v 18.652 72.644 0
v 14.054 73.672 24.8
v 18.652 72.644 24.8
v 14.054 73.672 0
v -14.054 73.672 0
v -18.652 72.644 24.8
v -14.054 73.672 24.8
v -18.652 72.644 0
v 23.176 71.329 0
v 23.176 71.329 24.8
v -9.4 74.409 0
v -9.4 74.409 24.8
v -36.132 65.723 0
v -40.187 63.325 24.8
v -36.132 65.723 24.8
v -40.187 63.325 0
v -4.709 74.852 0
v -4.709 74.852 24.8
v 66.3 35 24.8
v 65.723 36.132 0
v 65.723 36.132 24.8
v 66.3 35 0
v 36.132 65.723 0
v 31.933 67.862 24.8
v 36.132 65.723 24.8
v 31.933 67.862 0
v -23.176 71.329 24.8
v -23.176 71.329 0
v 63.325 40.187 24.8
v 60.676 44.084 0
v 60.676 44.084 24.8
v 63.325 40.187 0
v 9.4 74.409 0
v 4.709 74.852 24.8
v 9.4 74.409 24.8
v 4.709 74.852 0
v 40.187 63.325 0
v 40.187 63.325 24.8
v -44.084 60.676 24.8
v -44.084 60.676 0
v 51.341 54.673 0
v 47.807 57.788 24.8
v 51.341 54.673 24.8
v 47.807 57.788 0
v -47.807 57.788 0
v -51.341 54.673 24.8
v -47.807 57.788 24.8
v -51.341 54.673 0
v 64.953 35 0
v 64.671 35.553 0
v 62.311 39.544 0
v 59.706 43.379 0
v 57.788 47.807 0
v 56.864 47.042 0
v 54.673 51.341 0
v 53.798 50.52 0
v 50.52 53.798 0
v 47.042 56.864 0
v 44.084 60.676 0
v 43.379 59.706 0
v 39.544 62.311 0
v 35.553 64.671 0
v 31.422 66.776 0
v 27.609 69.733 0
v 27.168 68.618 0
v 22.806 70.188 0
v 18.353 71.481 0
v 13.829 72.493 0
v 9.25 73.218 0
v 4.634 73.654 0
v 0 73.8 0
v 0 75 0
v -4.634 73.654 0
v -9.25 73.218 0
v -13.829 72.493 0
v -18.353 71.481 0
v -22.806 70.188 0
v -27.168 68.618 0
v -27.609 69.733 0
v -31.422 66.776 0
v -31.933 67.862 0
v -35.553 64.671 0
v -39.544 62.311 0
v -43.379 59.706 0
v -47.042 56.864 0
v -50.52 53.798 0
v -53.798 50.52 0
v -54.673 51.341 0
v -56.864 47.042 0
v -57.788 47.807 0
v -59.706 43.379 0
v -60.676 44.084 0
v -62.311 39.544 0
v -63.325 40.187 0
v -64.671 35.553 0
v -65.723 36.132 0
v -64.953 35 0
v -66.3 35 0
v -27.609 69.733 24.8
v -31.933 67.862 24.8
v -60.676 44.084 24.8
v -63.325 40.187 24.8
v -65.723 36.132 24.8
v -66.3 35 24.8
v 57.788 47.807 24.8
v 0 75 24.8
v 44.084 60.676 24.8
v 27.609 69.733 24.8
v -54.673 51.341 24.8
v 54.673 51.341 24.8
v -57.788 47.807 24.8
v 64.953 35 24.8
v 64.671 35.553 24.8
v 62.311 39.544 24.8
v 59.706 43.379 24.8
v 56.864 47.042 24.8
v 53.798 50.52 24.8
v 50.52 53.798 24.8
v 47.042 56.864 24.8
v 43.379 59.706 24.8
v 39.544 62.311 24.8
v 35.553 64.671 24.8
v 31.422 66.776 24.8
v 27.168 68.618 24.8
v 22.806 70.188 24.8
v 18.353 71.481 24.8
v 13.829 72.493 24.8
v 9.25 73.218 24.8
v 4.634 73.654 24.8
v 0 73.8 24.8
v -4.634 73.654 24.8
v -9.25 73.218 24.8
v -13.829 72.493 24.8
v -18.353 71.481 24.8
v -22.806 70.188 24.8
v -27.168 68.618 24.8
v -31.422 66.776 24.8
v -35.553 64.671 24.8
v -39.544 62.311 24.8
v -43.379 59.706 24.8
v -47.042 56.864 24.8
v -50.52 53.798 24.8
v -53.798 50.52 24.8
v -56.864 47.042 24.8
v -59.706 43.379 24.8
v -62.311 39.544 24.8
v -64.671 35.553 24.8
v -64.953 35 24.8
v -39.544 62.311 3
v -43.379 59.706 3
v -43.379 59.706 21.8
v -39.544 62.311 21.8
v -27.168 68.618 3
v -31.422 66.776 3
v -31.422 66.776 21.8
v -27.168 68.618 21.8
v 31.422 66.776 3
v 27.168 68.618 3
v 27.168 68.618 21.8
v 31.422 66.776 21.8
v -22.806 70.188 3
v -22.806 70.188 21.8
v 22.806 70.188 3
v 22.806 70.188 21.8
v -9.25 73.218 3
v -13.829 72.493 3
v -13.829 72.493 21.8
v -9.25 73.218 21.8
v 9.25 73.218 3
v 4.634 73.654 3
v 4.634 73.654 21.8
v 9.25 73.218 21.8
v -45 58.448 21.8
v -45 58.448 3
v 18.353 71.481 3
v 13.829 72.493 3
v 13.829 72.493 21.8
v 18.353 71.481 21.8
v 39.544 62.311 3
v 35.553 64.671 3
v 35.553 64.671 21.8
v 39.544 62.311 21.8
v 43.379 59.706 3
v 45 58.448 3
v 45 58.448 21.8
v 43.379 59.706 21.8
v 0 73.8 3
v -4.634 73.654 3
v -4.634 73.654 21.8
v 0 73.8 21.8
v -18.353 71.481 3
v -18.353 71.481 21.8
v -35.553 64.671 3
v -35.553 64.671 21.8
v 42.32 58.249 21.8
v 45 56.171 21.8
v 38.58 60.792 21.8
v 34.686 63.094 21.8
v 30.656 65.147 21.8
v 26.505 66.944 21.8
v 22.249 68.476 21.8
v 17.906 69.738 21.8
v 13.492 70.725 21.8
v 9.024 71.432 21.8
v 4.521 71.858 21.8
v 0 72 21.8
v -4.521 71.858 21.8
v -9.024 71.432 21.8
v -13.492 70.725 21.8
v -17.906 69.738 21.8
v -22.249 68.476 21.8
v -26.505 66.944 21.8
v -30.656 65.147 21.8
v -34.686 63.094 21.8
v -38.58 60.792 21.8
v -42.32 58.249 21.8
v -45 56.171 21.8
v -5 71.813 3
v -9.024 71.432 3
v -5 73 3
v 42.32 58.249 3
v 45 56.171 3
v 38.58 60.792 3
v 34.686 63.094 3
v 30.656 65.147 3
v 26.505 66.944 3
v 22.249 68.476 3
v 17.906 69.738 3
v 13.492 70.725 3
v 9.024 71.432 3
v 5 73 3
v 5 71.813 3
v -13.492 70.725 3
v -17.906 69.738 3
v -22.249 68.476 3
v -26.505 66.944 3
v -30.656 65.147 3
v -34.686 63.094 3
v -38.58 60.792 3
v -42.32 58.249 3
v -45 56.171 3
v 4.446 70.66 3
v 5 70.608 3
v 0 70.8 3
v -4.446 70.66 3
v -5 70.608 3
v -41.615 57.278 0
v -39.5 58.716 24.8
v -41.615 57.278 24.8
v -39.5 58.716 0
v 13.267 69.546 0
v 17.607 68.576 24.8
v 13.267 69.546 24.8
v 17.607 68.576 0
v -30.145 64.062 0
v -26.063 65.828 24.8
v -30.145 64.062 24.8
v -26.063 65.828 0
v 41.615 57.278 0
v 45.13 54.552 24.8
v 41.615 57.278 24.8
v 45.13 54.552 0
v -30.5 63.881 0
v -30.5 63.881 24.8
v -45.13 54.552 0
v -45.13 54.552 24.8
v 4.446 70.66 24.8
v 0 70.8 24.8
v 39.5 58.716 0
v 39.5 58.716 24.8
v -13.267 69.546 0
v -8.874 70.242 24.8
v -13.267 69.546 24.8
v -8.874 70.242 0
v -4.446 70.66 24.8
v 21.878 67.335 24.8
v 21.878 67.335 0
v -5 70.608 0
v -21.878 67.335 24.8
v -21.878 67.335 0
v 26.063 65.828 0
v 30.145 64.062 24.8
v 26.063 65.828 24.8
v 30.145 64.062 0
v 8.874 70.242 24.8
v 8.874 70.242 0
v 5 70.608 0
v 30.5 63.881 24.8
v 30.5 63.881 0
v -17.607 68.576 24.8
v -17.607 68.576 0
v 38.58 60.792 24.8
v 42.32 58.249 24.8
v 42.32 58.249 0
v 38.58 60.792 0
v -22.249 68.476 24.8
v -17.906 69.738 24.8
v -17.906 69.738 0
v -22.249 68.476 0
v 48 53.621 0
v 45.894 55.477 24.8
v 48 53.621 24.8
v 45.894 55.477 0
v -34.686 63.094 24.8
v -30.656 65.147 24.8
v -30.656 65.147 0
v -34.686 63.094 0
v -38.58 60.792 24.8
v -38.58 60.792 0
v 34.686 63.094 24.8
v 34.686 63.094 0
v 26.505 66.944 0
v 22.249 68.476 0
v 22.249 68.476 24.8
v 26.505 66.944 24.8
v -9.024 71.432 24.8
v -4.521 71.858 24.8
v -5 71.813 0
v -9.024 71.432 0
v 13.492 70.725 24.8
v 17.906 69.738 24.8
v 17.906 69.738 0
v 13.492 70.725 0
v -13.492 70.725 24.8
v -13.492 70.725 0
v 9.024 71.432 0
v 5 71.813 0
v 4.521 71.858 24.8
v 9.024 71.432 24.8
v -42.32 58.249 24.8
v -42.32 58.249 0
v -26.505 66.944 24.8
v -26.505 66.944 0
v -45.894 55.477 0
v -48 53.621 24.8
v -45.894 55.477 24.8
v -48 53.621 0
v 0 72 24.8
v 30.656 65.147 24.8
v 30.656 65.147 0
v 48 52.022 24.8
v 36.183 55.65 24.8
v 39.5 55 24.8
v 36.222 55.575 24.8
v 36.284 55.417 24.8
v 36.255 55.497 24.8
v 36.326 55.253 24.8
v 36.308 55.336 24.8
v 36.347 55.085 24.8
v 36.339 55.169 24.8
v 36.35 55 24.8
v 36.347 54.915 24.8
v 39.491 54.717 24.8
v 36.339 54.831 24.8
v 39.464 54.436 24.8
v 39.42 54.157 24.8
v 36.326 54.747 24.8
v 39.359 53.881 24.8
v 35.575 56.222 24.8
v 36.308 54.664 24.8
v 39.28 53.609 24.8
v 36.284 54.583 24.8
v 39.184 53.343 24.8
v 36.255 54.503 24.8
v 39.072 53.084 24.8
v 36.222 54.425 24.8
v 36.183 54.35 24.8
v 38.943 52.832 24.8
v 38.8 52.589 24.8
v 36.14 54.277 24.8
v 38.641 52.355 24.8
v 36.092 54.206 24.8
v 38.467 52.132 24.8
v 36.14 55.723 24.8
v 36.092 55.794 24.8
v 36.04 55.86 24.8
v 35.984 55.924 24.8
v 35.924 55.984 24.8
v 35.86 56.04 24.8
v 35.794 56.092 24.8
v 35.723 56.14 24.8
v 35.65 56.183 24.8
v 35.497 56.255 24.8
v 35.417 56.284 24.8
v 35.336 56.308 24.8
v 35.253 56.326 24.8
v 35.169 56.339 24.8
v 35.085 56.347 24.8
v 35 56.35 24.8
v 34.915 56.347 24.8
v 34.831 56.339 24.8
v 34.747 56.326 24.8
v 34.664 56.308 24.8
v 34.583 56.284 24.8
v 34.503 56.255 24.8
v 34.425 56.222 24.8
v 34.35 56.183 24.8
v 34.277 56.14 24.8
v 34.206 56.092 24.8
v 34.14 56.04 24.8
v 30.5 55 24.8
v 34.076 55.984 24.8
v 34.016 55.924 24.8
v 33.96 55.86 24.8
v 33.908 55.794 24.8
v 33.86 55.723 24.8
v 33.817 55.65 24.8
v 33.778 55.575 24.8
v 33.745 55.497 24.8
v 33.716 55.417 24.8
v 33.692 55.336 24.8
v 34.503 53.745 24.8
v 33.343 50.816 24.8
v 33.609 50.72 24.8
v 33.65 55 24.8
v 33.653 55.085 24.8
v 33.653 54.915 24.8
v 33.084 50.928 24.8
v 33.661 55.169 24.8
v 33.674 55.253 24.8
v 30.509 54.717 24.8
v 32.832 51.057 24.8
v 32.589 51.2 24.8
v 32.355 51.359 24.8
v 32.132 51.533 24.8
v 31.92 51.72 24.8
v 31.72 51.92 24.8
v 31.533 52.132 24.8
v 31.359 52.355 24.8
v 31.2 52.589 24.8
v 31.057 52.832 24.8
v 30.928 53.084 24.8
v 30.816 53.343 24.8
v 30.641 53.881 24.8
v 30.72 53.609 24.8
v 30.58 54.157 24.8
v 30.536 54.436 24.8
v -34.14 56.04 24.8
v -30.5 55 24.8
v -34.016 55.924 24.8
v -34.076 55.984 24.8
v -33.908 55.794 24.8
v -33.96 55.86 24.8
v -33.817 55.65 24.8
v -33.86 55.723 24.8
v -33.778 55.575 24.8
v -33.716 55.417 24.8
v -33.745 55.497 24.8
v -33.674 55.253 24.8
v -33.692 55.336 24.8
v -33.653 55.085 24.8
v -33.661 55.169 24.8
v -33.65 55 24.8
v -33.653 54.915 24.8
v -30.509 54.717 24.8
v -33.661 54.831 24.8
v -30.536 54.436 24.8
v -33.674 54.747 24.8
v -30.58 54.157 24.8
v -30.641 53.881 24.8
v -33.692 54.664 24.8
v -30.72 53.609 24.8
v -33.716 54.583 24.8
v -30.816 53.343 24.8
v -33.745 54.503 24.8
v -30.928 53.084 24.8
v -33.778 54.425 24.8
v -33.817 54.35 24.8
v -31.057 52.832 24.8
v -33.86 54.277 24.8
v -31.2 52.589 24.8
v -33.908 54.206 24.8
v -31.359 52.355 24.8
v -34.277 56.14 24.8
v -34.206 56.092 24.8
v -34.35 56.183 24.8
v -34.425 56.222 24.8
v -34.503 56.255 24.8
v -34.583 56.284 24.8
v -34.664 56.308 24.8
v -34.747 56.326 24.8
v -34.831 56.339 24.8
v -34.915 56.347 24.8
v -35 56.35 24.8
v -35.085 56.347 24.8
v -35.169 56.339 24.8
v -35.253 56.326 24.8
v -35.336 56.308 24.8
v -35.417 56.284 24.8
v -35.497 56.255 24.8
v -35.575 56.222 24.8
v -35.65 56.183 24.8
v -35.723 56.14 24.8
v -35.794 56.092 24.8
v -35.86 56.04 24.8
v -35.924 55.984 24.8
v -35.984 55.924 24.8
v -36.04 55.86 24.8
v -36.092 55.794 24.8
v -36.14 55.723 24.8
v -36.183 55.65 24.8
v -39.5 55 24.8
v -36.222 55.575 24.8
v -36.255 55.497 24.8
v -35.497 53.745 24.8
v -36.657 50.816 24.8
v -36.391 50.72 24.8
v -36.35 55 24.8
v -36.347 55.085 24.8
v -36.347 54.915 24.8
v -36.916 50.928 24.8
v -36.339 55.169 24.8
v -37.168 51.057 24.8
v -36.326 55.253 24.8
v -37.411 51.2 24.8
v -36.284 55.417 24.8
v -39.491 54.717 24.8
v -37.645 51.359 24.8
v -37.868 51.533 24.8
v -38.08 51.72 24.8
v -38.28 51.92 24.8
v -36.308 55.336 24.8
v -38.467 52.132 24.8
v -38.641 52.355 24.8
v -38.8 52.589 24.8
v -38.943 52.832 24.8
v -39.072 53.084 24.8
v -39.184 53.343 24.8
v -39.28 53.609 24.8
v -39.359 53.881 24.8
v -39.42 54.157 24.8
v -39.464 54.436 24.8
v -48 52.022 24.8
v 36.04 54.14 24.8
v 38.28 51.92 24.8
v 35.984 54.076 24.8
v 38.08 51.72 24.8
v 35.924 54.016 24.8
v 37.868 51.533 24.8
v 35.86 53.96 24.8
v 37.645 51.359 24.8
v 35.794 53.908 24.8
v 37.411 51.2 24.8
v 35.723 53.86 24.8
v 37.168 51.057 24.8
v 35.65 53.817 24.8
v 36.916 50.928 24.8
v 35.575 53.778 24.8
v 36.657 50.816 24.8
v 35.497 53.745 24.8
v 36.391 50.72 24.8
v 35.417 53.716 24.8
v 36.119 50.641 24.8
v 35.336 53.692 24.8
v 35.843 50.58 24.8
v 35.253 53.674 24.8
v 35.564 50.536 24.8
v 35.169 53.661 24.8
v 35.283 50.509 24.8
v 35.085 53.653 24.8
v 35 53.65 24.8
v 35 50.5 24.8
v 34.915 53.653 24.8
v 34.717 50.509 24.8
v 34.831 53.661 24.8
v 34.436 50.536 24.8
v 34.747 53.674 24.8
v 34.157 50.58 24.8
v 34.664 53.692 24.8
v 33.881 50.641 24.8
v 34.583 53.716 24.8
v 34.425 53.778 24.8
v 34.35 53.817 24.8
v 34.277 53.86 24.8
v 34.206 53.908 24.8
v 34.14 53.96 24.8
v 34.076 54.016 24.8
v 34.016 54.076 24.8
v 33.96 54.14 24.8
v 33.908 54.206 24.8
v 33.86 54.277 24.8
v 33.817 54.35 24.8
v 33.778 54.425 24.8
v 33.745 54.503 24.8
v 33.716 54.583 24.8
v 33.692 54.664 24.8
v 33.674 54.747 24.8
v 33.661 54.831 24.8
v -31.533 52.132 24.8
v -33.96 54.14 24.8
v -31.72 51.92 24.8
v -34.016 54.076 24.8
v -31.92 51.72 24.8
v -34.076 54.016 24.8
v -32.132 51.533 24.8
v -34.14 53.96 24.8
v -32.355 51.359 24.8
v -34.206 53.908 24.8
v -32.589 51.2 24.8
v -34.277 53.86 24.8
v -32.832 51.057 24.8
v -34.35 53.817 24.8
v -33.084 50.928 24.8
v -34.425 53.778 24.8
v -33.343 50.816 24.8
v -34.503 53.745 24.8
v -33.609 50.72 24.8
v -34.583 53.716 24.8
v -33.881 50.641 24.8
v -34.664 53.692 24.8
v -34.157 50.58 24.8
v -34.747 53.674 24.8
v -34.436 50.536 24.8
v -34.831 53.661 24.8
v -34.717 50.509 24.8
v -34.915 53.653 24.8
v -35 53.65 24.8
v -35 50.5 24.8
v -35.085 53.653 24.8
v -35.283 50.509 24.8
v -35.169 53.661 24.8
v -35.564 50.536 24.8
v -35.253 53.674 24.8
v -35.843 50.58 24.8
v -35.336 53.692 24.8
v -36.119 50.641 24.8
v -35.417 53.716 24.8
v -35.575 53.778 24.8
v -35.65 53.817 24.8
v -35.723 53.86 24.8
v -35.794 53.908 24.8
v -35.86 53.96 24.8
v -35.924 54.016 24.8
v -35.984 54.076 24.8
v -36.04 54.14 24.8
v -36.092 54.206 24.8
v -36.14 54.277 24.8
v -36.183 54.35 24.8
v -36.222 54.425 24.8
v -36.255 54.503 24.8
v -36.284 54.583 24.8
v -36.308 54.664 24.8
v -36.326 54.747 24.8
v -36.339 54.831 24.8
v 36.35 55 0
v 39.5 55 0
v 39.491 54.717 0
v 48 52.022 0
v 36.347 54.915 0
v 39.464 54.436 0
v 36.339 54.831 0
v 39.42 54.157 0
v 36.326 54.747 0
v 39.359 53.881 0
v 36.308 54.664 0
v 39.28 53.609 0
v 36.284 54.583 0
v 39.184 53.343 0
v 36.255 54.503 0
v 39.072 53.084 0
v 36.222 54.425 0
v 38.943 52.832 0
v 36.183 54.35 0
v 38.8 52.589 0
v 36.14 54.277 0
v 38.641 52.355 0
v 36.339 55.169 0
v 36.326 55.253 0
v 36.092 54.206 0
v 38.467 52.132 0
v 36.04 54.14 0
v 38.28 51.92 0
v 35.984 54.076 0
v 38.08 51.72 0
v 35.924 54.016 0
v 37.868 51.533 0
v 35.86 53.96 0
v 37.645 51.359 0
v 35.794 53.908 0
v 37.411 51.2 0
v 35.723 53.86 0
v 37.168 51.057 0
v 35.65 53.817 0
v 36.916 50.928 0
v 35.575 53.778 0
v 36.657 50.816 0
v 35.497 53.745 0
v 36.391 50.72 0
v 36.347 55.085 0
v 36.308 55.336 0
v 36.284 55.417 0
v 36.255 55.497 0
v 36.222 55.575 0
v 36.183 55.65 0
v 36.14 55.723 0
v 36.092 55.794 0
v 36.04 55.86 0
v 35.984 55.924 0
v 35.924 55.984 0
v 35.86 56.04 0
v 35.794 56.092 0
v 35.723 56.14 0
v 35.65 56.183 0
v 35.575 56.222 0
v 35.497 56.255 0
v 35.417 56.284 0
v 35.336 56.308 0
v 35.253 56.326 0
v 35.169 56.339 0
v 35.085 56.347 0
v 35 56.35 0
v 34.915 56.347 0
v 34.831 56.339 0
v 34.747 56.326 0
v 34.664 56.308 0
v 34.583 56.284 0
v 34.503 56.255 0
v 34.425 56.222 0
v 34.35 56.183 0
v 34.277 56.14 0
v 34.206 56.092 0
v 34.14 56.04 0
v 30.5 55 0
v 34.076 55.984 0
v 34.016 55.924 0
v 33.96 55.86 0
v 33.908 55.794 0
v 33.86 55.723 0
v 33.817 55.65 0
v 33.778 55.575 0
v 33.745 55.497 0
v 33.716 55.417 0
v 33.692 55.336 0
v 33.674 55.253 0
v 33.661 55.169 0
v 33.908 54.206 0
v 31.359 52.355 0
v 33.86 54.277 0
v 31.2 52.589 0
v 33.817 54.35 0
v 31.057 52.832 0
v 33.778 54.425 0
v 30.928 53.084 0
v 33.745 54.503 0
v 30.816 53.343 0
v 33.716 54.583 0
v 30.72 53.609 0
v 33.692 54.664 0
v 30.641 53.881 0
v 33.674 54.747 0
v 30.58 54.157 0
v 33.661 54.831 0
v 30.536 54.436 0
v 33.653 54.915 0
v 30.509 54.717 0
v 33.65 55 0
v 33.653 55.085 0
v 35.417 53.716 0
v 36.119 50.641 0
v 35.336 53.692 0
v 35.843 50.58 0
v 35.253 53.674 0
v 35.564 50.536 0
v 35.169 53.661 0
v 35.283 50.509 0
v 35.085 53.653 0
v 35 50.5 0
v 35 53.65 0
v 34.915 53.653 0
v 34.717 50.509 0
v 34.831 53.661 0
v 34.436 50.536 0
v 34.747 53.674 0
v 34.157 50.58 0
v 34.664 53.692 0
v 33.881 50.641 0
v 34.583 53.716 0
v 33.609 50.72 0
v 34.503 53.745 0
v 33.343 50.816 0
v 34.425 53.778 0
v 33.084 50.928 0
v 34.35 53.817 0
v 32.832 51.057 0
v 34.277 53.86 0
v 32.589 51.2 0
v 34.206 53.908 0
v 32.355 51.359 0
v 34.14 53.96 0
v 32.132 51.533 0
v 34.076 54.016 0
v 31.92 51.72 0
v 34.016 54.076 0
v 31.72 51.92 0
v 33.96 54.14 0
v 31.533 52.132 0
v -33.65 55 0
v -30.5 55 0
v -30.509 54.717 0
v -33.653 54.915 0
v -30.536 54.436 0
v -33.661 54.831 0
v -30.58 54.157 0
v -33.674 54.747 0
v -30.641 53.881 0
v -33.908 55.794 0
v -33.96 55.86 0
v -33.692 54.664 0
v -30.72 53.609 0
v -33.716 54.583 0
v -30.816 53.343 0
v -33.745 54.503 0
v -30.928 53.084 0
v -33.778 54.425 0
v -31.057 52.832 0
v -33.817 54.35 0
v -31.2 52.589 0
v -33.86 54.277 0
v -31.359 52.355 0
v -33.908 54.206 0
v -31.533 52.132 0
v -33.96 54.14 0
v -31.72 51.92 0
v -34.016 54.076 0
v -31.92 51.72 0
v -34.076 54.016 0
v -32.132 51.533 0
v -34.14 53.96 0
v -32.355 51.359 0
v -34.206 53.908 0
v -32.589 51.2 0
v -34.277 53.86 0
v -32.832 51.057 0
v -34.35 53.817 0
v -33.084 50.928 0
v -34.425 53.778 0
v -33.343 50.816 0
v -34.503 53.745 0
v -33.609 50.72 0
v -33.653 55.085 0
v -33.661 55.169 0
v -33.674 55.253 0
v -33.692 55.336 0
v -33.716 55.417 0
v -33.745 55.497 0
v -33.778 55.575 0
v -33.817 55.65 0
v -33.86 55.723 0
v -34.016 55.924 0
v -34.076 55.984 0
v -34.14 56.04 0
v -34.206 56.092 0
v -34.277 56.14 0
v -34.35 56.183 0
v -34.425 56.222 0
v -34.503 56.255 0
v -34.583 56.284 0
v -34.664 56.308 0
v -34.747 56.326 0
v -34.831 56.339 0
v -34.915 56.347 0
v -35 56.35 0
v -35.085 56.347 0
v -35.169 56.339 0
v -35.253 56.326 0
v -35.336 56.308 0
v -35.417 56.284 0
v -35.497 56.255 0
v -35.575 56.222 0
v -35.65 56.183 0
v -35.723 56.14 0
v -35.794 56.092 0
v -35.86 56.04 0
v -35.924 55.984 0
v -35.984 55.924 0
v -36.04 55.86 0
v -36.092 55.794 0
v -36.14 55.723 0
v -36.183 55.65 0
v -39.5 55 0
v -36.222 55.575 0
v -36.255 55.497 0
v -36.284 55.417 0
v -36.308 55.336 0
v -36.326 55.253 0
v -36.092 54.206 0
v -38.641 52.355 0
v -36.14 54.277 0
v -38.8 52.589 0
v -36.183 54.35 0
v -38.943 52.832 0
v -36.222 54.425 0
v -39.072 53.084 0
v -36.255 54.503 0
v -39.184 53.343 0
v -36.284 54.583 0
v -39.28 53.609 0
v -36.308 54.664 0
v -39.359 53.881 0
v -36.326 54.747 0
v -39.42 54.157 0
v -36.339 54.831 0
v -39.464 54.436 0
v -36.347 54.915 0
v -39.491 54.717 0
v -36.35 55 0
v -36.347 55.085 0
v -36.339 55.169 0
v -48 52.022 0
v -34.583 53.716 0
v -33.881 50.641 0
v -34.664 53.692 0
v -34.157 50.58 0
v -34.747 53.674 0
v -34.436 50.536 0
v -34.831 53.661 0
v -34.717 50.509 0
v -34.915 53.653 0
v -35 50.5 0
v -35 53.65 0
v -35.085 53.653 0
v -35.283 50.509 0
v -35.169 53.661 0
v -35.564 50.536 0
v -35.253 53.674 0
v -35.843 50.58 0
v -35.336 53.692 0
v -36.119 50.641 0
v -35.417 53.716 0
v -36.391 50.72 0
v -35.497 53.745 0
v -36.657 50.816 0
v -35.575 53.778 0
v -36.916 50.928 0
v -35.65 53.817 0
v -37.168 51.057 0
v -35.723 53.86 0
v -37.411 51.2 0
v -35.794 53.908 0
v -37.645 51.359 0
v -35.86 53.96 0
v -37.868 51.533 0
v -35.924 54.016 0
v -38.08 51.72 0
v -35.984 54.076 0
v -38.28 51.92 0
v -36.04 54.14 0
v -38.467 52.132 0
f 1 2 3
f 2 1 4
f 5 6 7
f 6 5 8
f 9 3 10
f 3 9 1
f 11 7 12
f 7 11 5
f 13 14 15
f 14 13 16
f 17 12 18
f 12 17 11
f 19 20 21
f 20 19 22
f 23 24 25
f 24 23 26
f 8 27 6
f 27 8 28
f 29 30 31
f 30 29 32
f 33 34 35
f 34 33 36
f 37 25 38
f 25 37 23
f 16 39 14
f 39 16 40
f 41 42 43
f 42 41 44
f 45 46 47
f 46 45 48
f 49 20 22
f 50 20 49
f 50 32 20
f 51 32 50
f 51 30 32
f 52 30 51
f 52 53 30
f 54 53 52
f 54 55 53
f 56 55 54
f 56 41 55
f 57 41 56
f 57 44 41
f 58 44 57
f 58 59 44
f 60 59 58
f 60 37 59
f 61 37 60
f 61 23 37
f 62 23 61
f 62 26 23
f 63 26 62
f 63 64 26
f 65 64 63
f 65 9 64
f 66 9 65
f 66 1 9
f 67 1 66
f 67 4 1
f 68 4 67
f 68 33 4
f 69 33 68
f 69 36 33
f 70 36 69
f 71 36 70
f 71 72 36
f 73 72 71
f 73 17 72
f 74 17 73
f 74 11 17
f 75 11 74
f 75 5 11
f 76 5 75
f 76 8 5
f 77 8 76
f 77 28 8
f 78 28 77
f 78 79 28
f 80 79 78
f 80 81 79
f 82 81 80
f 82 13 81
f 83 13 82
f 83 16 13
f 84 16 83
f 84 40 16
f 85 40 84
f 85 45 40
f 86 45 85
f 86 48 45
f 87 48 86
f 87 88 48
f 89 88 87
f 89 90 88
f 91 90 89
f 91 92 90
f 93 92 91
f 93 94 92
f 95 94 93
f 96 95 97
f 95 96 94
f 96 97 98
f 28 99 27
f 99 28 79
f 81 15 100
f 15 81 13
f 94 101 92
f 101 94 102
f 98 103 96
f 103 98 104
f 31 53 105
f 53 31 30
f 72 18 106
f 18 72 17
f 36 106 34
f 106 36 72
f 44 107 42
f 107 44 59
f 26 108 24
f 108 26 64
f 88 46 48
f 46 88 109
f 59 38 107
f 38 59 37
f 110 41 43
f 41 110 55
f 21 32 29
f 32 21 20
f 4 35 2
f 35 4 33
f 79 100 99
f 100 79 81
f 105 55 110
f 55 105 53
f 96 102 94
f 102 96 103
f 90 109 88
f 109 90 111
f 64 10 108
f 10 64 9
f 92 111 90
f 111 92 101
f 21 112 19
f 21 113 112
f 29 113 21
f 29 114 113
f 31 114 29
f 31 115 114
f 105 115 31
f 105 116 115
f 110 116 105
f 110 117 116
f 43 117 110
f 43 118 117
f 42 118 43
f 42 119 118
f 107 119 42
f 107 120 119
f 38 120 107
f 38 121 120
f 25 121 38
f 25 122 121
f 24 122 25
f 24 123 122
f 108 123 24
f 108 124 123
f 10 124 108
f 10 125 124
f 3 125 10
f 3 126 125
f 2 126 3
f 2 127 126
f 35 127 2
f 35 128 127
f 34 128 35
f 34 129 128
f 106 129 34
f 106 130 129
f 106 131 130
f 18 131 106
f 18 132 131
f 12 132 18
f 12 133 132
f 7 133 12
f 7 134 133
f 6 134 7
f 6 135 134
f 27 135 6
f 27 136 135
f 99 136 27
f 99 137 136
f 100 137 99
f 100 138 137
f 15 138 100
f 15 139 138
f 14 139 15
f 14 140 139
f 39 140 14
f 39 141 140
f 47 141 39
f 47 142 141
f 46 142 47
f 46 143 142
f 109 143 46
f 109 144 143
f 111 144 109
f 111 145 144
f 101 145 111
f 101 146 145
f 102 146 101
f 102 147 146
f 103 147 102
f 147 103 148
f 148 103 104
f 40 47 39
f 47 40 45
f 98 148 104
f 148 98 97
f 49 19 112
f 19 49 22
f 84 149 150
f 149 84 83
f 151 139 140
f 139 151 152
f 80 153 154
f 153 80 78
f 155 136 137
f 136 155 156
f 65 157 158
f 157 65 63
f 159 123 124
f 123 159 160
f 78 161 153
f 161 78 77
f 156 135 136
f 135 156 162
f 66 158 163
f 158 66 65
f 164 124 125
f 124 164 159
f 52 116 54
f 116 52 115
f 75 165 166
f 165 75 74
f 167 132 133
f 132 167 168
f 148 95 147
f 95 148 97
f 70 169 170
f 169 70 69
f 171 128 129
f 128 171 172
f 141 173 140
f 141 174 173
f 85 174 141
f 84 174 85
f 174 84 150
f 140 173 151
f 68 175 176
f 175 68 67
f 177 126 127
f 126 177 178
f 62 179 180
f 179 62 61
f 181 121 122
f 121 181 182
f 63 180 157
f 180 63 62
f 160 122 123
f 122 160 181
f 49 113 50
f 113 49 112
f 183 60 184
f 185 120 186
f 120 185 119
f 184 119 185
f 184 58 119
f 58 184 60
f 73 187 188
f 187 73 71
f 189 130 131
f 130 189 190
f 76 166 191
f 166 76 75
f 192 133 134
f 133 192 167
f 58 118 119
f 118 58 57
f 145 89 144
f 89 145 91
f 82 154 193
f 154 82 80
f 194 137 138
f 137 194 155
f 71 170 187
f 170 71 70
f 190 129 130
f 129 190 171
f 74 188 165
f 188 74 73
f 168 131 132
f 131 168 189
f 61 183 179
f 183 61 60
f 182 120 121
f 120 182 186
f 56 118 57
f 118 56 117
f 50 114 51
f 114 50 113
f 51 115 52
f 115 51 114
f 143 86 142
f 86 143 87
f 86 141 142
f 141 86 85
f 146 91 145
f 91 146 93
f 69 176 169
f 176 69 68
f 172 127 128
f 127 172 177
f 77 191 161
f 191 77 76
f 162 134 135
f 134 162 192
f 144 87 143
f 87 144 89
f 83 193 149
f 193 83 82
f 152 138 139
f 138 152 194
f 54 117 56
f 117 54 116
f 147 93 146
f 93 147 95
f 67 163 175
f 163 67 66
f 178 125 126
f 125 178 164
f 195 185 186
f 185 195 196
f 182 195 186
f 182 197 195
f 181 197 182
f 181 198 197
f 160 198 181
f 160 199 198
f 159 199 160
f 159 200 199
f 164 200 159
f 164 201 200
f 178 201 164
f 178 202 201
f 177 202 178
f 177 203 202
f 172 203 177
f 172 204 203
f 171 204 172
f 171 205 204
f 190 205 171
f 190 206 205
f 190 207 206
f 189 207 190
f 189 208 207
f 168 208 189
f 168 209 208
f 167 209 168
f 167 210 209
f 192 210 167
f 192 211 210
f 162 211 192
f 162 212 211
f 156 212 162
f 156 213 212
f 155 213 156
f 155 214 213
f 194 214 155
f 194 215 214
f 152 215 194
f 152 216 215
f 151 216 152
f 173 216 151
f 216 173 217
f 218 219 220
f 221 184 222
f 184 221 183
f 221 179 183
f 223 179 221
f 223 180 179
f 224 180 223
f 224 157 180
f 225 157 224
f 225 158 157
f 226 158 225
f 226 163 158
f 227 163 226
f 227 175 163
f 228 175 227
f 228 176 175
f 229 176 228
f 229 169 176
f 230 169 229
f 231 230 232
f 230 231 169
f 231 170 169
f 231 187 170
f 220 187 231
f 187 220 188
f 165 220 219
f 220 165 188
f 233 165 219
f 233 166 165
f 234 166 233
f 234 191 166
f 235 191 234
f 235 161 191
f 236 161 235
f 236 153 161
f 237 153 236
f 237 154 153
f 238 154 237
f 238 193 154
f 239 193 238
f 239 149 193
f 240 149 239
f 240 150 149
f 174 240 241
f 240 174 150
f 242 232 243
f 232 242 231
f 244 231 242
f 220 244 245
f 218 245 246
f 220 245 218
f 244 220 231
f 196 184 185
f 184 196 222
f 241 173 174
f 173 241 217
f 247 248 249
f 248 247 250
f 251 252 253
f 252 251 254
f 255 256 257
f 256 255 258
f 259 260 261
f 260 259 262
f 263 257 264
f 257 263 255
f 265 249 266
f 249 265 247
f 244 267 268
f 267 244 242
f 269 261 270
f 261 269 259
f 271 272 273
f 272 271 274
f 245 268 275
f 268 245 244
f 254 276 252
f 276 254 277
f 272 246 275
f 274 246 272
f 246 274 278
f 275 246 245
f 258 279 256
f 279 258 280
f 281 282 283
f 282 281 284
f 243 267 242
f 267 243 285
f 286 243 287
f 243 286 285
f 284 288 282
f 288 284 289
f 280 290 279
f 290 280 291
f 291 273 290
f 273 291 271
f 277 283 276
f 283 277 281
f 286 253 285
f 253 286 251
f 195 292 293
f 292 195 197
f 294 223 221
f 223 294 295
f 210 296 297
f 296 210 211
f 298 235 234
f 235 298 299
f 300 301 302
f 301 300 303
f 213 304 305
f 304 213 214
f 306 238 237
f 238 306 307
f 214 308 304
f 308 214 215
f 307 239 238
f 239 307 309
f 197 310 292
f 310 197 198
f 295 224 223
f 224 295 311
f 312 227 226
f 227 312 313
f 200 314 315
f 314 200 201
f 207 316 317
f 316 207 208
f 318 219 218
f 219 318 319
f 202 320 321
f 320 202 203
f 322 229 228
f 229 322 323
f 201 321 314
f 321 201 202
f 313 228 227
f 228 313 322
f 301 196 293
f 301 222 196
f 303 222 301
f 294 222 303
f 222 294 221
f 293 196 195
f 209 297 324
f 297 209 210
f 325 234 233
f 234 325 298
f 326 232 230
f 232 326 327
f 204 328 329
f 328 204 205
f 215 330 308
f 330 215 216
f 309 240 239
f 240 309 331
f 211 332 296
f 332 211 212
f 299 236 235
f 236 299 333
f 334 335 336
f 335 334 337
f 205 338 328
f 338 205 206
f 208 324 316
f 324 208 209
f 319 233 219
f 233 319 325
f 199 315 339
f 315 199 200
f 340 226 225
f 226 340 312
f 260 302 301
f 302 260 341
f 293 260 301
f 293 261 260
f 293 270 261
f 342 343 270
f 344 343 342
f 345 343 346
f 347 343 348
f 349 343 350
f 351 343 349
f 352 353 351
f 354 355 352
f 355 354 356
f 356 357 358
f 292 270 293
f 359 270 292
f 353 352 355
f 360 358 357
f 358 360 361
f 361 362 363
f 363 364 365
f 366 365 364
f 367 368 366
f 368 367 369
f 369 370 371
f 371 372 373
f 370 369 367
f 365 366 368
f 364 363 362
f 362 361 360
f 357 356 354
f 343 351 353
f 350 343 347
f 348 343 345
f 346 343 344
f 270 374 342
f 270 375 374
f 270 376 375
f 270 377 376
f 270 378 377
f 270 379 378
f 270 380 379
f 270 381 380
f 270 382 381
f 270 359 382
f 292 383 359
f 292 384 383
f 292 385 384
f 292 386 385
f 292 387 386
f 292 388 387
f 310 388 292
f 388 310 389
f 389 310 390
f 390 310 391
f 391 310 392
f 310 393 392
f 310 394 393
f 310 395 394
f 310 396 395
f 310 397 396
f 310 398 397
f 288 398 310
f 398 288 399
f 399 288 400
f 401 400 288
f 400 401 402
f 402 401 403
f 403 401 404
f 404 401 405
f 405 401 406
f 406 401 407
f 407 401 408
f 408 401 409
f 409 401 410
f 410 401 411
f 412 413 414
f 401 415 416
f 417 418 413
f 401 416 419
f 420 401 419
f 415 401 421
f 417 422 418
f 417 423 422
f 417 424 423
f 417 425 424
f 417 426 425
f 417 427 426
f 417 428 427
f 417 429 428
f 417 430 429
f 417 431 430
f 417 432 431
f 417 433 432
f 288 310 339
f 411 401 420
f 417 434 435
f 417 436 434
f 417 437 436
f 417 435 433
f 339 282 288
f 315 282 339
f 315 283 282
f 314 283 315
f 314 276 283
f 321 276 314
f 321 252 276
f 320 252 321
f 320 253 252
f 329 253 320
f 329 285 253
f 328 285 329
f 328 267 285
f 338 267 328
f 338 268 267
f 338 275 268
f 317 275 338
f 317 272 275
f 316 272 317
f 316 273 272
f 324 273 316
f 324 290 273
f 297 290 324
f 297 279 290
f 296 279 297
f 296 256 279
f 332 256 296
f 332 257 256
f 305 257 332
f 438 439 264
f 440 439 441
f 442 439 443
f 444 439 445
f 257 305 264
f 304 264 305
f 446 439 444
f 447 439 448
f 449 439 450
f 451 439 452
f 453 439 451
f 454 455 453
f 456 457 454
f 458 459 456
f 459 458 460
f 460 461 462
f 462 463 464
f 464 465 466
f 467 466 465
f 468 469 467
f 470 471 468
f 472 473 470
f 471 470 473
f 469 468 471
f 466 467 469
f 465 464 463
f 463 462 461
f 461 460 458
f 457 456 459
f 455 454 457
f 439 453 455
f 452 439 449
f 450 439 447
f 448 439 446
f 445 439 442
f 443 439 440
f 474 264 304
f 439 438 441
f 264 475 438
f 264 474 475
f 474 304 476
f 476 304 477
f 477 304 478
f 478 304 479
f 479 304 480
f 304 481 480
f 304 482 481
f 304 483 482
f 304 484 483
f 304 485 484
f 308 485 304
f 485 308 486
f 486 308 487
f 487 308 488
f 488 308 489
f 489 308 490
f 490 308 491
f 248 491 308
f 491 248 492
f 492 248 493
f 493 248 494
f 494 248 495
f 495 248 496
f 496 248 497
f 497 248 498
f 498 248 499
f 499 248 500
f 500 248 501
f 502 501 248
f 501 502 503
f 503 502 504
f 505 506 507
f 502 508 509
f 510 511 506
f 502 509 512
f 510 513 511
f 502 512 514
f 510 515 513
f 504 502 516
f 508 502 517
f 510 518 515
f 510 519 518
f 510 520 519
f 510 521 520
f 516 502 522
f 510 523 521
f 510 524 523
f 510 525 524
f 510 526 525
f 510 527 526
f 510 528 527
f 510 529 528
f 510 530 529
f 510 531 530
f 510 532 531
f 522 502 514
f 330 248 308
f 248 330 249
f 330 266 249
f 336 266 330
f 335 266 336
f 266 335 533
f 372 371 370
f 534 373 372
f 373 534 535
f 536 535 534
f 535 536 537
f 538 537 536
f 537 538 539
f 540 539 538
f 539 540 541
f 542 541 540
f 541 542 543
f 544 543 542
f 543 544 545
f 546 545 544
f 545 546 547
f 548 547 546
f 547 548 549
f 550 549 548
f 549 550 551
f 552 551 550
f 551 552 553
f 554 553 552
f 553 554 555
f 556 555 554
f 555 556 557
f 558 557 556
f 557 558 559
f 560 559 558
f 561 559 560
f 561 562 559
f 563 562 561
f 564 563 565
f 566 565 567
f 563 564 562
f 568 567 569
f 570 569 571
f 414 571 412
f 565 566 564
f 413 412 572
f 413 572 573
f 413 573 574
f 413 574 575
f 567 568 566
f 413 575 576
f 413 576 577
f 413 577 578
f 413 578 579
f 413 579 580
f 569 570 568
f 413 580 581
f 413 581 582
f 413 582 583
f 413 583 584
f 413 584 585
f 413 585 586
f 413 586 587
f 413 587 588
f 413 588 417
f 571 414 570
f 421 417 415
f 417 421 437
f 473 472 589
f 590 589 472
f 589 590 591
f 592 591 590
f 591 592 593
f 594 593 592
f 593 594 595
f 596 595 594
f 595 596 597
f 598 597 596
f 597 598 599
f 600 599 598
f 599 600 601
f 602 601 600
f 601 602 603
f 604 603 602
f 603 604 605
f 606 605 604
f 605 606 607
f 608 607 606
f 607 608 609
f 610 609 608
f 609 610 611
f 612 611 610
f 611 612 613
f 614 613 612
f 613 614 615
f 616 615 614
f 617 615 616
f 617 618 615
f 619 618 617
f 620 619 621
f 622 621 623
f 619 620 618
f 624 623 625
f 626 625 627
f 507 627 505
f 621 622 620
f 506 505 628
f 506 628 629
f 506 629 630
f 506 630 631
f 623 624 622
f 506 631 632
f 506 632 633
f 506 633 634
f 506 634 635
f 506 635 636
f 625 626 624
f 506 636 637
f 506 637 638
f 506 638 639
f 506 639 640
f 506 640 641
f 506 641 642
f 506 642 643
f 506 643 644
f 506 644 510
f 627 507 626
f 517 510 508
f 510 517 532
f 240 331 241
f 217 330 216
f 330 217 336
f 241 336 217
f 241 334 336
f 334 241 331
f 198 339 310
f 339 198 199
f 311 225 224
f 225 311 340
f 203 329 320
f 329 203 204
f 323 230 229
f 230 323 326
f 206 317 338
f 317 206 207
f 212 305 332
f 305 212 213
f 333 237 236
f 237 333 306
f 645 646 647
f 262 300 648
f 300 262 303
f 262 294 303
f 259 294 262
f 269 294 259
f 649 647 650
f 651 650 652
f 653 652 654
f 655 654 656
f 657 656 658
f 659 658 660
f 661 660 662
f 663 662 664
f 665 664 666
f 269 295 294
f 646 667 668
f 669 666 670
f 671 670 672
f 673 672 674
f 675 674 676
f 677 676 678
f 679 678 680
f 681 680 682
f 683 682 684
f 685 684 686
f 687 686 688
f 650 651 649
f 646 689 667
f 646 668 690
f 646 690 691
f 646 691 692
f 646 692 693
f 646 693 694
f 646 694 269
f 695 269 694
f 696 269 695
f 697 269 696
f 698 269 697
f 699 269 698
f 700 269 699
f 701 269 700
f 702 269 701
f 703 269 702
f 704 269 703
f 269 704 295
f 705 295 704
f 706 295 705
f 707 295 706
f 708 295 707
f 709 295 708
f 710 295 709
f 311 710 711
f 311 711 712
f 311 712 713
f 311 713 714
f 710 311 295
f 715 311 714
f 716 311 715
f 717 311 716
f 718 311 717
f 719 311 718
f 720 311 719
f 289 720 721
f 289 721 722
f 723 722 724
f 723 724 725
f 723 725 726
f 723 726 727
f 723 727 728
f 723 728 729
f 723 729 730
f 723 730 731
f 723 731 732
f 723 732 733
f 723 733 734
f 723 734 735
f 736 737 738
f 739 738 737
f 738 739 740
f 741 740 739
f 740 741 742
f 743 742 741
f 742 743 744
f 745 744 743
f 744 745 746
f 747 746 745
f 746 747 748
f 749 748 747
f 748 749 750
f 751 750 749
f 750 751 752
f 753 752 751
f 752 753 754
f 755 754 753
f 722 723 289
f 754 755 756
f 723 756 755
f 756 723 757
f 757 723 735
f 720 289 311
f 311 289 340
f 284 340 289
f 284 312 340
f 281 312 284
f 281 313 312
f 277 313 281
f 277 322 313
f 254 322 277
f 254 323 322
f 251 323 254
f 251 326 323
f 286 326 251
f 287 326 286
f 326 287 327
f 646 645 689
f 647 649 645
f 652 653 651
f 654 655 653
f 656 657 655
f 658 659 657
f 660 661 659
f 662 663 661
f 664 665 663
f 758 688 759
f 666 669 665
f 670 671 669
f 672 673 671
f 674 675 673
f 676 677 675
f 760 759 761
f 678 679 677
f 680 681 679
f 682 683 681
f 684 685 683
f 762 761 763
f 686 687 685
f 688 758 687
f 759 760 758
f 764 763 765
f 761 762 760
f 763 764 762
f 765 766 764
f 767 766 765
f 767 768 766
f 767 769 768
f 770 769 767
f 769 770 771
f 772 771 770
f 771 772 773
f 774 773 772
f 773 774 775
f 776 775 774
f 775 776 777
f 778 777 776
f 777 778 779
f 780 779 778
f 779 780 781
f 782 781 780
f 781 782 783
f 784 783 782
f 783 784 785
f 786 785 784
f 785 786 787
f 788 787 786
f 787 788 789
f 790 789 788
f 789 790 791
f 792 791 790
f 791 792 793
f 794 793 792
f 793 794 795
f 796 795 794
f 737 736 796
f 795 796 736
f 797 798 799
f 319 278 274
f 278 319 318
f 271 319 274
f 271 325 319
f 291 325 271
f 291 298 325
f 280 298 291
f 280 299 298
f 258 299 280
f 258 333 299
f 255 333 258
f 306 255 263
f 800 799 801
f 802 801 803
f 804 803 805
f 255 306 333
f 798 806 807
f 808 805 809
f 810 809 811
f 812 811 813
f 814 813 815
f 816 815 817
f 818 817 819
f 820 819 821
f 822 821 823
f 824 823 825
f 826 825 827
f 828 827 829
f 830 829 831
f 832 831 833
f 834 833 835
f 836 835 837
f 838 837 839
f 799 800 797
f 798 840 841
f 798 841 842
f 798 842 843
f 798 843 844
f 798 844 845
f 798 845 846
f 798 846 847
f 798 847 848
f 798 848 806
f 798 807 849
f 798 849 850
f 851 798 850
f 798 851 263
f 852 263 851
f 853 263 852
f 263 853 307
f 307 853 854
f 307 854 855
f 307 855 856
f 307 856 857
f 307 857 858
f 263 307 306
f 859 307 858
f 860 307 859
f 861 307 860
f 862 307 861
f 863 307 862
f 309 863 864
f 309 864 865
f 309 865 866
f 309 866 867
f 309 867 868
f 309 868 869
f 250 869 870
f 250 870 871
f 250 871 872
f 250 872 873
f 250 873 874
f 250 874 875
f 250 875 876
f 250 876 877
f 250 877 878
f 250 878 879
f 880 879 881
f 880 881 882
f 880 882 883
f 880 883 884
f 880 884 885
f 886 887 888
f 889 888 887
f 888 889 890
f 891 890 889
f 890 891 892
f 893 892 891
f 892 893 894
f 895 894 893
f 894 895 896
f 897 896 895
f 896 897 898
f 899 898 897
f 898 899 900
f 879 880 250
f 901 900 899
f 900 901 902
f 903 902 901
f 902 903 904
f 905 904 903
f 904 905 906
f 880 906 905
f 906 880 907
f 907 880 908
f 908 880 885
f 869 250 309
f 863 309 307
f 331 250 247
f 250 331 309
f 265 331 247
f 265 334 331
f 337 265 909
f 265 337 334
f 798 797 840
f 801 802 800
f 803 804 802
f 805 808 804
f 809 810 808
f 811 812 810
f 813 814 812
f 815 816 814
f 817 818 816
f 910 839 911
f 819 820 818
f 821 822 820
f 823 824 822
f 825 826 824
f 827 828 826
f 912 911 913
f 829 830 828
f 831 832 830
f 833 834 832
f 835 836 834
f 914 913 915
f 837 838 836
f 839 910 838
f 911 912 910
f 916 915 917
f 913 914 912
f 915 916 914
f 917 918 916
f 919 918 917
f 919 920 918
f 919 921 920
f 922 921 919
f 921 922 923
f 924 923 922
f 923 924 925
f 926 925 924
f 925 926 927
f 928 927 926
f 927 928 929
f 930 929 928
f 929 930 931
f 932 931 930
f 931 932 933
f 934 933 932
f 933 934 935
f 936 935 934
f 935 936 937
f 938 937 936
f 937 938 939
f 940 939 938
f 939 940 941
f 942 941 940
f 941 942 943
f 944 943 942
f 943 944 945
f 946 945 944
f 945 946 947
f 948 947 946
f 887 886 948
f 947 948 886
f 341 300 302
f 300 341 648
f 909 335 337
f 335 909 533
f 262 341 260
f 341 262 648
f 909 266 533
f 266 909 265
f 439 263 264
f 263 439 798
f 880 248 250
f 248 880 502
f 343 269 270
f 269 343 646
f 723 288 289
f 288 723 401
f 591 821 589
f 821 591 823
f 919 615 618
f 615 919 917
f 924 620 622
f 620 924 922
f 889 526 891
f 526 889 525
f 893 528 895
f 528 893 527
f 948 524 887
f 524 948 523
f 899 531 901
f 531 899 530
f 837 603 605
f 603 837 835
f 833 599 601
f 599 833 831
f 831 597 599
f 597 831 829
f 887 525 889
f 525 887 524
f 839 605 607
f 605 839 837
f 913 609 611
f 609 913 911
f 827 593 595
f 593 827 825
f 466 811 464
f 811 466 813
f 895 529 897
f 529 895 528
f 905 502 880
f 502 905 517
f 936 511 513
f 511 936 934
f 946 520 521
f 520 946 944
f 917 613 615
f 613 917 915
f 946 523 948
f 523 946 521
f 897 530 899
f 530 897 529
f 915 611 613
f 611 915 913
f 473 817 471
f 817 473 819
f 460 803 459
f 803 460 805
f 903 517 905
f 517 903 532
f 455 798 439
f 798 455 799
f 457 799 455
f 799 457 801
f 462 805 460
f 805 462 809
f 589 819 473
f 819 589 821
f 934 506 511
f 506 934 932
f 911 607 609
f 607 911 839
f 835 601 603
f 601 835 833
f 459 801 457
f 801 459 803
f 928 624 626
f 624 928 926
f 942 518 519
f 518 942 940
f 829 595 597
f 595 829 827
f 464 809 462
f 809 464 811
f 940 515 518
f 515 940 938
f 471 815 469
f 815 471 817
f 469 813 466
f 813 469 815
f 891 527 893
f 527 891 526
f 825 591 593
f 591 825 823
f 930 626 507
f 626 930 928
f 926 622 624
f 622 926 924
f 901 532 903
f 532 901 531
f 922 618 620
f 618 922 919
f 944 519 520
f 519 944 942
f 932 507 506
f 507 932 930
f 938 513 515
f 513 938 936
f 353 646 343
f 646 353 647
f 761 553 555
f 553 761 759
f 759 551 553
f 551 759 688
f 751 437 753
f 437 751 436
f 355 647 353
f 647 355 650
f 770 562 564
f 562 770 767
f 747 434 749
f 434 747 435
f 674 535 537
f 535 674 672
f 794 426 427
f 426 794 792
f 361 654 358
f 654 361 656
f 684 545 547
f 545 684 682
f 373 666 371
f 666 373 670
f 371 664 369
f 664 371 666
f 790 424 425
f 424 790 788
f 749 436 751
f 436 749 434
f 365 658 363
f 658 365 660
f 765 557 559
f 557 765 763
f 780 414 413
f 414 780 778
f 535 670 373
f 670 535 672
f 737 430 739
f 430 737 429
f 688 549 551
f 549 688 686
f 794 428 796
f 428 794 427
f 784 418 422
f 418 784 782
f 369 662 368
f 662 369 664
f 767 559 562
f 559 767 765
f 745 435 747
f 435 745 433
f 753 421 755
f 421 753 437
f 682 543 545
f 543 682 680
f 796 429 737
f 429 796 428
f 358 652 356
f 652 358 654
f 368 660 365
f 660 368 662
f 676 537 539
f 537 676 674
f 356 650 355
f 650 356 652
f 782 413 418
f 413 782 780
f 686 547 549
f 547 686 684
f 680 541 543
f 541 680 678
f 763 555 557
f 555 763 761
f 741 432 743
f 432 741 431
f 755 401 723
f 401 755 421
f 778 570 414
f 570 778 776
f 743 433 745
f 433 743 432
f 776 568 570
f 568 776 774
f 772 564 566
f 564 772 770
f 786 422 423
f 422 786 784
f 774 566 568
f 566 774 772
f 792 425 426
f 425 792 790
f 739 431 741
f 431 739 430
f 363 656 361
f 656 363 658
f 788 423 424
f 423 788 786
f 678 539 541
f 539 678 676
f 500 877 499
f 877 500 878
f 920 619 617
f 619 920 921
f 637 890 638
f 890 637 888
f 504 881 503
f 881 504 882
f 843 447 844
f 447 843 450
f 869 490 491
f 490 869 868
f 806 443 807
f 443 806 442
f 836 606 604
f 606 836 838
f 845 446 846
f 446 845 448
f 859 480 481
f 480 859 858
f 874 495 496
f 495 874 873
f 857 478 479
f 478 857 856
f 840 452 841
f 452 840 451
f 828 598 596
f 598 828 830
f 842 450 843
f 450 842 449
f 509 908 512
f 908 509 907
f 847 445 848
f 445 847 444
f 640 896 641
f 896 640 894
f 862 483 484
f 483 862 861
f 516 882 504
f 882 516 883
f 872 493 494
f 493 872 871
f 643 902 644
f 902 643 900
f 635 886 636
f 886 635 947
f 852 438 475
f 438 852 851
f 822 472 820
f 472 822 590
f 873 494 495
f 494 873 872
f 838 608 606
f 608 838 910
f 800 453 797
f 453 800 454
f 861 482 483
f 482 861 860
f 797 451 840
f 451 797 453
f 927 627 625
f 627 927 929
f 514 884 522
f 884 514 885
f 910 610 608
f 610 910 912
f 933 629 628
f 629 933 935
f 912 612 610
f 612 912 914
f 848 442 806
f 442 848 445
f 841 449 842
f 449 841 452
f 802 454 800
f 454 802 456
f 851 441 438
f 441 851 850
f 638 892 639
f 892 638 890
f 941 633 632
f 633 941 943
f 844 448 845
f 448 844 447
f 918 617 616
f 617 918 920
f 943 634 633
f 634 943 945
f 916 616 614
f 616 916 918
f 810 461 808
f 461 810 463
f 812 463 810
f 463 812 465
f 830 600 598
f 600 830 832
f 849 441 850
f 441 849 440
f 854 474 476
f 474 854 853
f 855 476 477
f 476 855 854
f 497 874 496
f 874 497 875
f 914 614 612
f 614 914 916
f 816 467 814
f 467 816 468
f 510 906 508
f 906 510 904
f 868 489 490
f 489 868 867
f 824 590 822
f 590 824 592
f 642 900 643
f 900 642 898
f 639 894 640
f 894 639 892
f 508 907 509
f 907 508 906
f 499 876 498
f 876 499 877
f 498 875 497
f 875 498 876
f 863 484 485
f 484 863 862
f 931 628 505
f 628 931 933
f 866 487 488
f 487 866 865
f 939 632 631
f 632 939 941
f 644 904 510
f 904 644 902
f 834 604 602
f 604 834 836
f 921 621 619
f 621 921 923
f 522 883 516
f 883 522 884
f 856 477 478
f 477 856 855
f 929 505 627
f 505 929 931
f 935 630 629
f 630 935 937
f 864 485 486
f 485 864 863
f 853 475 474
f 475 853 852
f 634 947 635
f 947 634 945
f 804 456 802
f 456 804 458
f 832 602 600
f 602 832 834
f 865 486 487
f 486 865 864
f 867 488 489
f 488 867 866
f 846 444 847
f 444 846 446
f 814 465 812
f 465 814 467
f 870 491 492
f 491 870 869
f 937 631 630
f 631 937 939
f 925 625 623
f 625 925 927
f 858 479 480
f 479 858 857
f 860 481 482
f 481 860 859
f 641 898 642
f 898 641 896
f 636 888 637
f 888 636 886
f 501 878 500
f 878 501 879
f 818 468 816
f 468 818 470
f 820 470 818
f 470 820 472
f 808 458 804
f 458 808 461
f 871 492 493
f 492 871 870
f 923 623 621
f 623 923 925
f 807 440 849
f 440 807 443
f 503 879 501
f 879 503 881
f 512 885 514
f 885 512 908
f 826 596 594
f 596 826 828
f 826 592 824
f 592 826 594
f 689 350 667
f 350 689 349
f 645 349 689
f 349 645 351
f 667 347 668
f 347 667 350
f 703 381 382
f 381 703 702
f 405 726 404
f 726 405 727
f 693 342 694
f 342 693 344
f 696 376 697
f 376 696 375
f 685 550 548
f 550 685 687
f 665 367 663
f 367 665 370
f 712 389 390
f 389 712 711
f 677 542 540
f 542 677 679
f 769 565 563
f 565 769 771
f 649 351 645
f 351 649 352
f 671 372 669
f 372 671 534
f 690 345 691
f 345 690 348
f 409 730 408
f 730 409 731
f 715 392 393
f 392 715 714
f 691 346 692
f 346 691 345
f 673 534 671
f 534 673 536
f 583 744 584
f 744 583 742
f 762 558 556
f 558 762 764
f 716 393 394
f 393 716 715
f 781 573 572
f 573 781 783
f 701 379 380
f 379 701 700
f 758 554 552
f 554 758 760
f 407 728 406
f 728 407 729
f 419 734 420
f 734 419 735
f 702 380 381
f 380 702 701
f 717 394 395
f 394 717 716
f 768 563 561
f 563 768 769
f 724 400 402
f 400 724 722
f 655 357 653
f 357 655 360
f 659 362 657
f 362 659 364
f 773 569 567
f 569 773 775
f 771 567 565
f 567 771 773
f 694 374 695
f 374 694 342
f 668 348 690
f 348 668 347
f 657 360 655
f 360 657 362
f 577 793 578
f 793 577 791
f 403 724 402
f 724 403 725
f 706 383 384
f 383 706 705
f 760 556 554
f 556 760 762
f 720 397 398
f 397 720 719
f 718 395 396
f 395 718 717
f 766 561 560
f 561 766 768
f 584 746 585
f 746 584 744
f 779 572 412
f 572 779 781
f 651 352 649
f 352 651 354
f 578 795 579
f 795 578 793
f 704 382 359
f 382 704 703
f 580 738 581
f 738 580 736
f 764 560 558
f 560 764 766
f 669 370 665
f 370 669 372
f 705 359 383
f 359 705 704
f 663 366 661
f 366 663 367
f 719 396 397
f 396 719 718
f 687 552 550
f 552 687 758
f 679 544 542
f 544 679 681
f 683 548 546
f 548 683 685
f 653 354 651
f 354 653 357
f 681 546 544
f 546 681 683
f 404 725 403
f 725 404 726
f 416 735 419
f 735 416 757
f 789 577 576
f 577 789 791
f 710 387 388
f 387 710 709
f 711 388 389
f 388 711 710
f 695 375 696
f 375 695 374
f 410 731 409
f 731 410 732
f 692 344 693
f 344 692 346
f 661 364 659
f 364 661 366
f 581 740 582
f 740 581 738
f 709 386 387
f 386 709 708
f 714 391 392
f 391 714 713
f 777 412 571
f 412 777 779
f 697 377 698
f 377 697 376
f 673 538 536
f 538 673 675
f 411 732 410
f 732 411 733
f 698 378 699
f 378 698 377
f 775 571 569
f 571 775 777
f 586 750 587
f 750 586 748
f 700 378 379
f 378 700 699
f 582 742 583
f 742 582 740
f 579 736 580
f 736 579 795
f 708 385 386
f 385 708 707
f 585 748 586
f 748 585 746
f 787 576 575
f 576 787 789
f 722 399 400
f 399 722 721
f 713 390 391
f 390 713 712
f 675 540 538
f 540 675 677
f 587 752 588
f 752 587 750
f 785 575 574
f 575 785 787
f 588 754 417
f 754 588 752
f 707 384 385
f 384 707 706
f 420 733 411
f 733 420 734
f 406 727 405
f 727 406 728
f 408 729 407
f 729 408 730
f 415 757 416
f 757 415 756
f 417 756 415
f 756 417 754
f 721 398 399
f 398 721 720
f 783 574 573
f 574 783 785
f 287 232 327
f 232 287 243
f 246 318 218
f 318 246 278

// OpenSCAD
$fn=100;
module cubexy(x,y,z,zz) {
    translate([-x/2,-y/2,zz]) cube([x,y,z]);
}

module stand(h) {
    difference() {
        cylinder(d=8,h=h);
        translate([0,0,-1]) cylinder(d=6,h=h+2,$fn=6);
    }
}


difference() {
union() {
    // coil support
    difference() {
        translate([0,0,3]) cylinder(r=75,h=18.8);
    
        translate([-80,-80,-1]) cube([160,80+50,30]);
        translate([45,-80,-1]) cube([30,160,30]);
        translate([-45-30,-80,-1]) cube([30,160,30]);
        translate([0,0,-1]) cylinder(r=72-1.2,h=30);
    }
    // inner wall
    difference() {
        translate([0,0,0]) cylinder(r=72,h=24.8);
    
        translate([-80,-80,-1]) cube([160,80+50,30]);
        translate([48,-80,-1]) cube([30,160,30]);
        translate([-48-30,-80,-1]) cube([30,160,30]);
        translate([0,0,-1]) cylinder(r=72-1.2,h=30);
    }
    // outer wall
    difference() {
        translate([0,0,0]) cylinder(r=75,h=24.8);
    
        translate([-80,-80,-1]) cube([160,80+35,30]);
        //translate([40,-80,-1]) cube([30,160,30]);
        //translate([-40-30,-80,-1]) cube([30,160,30]);
        translate([0,0,-1]) cylinder(r=75-1.2,h=30);
    }
    
    translate([-35,55,0]) cylinder(d=9,h=24.8);
    translate([35,55,0]) cylinder(d=9,h=24.8);
    difference() {
        union() {
            translate([-35,55+7.5,0]) cubexy(9,15,24.8,0);
            translate([35,55+7.5,0]) cubexy(9,15,24.8,0);
        }
        translate([0,0,-1]) difference() {
            cylinder(r=90,h=30);
            cylinder(r=72,h=30);
        }
    }
}

//#cubexy(67.6,160,12.4,6.2);

    translate([-35,55,-1]) #cylinder(d=2.7,h=30);
    translate([35,55,-1]) #cylinder(d=2.7,h=30);
    translate([-5,63,0]) #cube([10,10,3]);
}

//translate([-35,55,0]) stand(24.8);
//translate([35,55,0]) stand(24.8);
